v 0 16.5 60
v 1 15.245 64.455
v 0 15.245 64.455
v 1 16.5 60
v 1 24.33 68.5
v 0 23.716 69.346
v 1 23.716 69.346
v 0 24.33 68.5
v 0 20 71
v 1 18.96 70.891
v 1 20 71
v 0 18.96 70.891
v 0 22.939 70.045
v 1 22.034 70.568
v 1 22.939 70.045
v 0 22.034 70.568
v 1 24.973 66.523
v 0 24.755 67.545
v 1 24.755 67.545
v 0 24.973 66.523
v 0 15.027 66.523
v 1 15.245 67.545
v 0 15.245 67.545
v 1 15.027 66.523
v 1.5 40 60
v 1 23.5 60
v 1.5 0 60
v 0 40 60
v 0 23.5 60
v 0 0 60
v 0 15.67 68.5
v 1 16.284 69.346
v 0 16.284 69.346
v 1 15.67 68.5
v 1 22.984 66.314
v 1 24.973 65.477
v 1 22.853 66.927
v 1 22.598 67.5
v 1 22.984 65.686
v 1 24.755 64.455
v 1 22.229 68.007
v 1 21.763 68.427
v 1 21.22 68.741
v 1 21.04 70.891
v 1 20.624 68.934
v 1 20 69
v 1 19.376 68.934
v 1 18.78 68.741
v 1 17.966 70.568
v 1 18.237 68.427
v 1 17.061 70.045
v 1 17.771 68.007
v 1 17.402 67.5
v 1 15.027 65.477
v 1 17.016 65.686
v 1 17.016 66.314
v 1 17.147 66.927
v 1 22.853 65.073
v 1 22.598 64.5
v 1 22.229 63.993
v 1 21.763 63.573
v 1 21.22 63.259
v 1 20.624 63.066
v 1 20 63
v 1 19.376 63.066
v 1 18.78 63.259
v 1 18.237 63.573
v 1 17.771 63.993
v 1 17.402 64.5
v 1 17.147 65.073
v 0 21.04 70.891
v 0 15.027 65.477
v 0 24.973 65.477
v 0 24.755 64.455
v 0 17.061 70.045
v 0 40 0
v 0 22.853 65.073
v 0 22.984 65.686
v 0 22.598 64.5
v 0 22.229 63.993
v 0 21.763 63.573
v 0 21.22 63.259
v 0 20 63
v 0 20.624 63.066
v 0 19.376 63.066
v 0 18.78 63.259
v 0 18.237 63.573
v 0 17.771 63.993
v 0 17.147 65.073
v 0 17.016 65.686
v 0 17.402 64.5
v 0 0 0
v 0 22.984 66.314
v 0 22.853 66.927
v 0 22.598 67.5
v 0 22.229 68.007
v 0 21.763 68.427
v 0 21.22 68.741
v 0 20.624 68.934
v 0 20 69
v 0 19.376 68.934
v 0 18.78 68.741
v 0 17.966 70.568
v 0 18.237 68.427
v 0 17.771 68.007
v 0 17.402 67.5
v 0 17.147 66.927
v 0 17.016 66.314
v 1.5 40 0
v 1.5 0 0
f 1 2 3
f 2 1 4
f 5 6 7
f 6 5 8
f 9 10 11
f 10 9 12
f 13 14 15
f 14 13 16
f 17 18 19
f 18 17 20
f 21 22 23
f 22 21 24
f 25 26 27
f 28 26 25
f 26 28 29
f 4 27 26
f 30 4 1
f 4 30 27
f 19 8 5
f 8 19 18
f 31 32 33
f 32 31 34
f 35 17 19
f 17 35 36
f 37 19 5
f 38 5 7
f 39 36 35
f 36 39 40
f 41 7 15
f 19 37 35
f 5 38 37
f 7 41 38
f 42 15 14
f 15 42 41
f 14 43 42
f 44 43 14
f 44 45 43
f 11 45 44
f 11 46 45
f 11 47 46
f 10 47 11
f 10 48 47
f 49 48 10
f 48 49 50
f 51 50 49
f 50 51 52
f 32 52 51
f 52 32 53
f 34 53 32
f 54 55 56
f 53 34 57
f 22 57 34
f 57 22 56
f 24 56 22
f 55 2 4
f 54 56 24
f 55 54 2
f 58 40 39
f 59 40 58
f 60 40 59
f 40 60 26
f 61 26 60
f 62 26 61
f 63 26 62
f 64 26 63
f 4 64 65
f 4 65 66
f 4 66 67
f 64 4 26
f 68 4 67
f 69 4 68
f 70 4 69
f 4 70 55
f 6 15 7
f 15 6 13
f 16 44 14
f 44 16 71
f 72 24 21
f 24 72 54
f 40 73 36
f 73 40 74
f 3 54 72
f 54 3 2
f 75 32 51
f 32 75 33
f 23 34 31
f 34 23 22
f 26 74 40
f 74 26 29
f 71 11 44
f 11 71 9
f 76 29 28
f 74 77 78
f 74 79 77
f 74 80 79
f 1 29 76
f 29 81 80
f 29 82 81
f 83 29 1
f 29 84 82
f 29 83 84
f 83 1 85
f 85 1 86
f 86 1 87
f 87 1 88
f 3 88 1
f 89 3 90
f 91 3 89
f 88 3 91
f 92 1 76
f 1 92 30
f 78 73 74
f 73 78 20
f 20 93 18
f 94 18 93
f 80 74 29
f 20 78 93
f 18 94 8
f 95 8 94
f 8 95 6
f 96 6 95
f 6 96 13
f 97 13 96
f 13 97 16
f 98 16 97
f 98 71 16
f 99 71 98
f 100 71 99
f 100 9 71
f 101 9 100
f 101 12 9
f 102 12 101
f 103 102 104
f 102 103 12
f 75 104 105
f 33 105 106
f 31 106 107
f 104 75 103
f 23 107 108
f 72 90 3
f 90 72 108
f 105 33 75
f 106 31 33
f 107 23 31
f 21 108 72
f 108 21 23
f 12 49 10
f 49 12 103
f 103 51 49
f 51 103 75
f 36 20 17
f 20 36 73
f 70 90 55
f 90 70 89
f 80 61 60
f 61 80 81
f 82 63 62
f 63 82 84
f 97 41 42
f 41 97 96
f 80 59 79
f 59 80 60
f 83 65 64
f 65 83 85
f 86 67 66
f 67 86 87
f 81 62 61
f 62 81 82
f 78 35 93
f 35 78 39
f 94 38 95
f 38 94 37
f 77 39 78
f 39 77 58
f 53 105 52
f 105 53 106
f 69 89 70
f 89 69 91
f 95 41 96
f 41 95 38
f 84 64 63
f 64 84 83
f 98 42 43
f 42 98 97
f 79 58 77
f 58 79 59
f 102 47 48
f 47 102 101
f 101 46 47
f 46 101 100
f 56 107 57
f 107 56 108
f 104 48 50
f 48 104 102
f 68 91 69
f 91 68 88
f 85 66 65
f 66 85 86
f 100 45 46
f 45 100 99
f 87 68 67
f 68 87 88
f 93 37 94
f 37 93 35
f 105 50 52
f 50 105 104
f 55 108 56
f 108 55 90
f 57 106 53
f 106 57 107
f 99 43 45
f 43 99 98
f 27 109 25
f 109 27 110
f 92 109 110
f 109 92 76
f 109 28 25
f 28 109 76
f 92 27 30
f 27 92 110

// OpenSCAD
/*
 * a tab for my phone case
 */

$fn=30;

thickness = 1;

stalk_width = 7;
stalk_length = 1;

tab_width = 40;
tab_length = 60;

loop_radius = 5;
loophole_radius = loop_radius - 2;

module loophole()
{
   translate([-thickness, tab_width / 2, tab_length + stalk_length + loop_radius])
      rotate([0, 90, 0])
         cylinder(h=thickness*3, r=loophole_radius);
}

module loop()
{
   translate([0, tab_width / 2, tab_length + stalk_length + loop_radius])
      rotate([0, 90, 0])
         cylinder(h=thickness, r=loop_radius);
}

module loop_stalk()
{
   translate([0, (tab_width - stalk_width) / 2, tab_length])
      cube([thickness, stalk_width, stalk_length]);
}

module tab()
{
   cube([thickness+0.5, tab_width, tab_length]);
}

difference() {
   hull() {
      loop();
      loop_stalk();
   }
   loophole();
}

tab();
